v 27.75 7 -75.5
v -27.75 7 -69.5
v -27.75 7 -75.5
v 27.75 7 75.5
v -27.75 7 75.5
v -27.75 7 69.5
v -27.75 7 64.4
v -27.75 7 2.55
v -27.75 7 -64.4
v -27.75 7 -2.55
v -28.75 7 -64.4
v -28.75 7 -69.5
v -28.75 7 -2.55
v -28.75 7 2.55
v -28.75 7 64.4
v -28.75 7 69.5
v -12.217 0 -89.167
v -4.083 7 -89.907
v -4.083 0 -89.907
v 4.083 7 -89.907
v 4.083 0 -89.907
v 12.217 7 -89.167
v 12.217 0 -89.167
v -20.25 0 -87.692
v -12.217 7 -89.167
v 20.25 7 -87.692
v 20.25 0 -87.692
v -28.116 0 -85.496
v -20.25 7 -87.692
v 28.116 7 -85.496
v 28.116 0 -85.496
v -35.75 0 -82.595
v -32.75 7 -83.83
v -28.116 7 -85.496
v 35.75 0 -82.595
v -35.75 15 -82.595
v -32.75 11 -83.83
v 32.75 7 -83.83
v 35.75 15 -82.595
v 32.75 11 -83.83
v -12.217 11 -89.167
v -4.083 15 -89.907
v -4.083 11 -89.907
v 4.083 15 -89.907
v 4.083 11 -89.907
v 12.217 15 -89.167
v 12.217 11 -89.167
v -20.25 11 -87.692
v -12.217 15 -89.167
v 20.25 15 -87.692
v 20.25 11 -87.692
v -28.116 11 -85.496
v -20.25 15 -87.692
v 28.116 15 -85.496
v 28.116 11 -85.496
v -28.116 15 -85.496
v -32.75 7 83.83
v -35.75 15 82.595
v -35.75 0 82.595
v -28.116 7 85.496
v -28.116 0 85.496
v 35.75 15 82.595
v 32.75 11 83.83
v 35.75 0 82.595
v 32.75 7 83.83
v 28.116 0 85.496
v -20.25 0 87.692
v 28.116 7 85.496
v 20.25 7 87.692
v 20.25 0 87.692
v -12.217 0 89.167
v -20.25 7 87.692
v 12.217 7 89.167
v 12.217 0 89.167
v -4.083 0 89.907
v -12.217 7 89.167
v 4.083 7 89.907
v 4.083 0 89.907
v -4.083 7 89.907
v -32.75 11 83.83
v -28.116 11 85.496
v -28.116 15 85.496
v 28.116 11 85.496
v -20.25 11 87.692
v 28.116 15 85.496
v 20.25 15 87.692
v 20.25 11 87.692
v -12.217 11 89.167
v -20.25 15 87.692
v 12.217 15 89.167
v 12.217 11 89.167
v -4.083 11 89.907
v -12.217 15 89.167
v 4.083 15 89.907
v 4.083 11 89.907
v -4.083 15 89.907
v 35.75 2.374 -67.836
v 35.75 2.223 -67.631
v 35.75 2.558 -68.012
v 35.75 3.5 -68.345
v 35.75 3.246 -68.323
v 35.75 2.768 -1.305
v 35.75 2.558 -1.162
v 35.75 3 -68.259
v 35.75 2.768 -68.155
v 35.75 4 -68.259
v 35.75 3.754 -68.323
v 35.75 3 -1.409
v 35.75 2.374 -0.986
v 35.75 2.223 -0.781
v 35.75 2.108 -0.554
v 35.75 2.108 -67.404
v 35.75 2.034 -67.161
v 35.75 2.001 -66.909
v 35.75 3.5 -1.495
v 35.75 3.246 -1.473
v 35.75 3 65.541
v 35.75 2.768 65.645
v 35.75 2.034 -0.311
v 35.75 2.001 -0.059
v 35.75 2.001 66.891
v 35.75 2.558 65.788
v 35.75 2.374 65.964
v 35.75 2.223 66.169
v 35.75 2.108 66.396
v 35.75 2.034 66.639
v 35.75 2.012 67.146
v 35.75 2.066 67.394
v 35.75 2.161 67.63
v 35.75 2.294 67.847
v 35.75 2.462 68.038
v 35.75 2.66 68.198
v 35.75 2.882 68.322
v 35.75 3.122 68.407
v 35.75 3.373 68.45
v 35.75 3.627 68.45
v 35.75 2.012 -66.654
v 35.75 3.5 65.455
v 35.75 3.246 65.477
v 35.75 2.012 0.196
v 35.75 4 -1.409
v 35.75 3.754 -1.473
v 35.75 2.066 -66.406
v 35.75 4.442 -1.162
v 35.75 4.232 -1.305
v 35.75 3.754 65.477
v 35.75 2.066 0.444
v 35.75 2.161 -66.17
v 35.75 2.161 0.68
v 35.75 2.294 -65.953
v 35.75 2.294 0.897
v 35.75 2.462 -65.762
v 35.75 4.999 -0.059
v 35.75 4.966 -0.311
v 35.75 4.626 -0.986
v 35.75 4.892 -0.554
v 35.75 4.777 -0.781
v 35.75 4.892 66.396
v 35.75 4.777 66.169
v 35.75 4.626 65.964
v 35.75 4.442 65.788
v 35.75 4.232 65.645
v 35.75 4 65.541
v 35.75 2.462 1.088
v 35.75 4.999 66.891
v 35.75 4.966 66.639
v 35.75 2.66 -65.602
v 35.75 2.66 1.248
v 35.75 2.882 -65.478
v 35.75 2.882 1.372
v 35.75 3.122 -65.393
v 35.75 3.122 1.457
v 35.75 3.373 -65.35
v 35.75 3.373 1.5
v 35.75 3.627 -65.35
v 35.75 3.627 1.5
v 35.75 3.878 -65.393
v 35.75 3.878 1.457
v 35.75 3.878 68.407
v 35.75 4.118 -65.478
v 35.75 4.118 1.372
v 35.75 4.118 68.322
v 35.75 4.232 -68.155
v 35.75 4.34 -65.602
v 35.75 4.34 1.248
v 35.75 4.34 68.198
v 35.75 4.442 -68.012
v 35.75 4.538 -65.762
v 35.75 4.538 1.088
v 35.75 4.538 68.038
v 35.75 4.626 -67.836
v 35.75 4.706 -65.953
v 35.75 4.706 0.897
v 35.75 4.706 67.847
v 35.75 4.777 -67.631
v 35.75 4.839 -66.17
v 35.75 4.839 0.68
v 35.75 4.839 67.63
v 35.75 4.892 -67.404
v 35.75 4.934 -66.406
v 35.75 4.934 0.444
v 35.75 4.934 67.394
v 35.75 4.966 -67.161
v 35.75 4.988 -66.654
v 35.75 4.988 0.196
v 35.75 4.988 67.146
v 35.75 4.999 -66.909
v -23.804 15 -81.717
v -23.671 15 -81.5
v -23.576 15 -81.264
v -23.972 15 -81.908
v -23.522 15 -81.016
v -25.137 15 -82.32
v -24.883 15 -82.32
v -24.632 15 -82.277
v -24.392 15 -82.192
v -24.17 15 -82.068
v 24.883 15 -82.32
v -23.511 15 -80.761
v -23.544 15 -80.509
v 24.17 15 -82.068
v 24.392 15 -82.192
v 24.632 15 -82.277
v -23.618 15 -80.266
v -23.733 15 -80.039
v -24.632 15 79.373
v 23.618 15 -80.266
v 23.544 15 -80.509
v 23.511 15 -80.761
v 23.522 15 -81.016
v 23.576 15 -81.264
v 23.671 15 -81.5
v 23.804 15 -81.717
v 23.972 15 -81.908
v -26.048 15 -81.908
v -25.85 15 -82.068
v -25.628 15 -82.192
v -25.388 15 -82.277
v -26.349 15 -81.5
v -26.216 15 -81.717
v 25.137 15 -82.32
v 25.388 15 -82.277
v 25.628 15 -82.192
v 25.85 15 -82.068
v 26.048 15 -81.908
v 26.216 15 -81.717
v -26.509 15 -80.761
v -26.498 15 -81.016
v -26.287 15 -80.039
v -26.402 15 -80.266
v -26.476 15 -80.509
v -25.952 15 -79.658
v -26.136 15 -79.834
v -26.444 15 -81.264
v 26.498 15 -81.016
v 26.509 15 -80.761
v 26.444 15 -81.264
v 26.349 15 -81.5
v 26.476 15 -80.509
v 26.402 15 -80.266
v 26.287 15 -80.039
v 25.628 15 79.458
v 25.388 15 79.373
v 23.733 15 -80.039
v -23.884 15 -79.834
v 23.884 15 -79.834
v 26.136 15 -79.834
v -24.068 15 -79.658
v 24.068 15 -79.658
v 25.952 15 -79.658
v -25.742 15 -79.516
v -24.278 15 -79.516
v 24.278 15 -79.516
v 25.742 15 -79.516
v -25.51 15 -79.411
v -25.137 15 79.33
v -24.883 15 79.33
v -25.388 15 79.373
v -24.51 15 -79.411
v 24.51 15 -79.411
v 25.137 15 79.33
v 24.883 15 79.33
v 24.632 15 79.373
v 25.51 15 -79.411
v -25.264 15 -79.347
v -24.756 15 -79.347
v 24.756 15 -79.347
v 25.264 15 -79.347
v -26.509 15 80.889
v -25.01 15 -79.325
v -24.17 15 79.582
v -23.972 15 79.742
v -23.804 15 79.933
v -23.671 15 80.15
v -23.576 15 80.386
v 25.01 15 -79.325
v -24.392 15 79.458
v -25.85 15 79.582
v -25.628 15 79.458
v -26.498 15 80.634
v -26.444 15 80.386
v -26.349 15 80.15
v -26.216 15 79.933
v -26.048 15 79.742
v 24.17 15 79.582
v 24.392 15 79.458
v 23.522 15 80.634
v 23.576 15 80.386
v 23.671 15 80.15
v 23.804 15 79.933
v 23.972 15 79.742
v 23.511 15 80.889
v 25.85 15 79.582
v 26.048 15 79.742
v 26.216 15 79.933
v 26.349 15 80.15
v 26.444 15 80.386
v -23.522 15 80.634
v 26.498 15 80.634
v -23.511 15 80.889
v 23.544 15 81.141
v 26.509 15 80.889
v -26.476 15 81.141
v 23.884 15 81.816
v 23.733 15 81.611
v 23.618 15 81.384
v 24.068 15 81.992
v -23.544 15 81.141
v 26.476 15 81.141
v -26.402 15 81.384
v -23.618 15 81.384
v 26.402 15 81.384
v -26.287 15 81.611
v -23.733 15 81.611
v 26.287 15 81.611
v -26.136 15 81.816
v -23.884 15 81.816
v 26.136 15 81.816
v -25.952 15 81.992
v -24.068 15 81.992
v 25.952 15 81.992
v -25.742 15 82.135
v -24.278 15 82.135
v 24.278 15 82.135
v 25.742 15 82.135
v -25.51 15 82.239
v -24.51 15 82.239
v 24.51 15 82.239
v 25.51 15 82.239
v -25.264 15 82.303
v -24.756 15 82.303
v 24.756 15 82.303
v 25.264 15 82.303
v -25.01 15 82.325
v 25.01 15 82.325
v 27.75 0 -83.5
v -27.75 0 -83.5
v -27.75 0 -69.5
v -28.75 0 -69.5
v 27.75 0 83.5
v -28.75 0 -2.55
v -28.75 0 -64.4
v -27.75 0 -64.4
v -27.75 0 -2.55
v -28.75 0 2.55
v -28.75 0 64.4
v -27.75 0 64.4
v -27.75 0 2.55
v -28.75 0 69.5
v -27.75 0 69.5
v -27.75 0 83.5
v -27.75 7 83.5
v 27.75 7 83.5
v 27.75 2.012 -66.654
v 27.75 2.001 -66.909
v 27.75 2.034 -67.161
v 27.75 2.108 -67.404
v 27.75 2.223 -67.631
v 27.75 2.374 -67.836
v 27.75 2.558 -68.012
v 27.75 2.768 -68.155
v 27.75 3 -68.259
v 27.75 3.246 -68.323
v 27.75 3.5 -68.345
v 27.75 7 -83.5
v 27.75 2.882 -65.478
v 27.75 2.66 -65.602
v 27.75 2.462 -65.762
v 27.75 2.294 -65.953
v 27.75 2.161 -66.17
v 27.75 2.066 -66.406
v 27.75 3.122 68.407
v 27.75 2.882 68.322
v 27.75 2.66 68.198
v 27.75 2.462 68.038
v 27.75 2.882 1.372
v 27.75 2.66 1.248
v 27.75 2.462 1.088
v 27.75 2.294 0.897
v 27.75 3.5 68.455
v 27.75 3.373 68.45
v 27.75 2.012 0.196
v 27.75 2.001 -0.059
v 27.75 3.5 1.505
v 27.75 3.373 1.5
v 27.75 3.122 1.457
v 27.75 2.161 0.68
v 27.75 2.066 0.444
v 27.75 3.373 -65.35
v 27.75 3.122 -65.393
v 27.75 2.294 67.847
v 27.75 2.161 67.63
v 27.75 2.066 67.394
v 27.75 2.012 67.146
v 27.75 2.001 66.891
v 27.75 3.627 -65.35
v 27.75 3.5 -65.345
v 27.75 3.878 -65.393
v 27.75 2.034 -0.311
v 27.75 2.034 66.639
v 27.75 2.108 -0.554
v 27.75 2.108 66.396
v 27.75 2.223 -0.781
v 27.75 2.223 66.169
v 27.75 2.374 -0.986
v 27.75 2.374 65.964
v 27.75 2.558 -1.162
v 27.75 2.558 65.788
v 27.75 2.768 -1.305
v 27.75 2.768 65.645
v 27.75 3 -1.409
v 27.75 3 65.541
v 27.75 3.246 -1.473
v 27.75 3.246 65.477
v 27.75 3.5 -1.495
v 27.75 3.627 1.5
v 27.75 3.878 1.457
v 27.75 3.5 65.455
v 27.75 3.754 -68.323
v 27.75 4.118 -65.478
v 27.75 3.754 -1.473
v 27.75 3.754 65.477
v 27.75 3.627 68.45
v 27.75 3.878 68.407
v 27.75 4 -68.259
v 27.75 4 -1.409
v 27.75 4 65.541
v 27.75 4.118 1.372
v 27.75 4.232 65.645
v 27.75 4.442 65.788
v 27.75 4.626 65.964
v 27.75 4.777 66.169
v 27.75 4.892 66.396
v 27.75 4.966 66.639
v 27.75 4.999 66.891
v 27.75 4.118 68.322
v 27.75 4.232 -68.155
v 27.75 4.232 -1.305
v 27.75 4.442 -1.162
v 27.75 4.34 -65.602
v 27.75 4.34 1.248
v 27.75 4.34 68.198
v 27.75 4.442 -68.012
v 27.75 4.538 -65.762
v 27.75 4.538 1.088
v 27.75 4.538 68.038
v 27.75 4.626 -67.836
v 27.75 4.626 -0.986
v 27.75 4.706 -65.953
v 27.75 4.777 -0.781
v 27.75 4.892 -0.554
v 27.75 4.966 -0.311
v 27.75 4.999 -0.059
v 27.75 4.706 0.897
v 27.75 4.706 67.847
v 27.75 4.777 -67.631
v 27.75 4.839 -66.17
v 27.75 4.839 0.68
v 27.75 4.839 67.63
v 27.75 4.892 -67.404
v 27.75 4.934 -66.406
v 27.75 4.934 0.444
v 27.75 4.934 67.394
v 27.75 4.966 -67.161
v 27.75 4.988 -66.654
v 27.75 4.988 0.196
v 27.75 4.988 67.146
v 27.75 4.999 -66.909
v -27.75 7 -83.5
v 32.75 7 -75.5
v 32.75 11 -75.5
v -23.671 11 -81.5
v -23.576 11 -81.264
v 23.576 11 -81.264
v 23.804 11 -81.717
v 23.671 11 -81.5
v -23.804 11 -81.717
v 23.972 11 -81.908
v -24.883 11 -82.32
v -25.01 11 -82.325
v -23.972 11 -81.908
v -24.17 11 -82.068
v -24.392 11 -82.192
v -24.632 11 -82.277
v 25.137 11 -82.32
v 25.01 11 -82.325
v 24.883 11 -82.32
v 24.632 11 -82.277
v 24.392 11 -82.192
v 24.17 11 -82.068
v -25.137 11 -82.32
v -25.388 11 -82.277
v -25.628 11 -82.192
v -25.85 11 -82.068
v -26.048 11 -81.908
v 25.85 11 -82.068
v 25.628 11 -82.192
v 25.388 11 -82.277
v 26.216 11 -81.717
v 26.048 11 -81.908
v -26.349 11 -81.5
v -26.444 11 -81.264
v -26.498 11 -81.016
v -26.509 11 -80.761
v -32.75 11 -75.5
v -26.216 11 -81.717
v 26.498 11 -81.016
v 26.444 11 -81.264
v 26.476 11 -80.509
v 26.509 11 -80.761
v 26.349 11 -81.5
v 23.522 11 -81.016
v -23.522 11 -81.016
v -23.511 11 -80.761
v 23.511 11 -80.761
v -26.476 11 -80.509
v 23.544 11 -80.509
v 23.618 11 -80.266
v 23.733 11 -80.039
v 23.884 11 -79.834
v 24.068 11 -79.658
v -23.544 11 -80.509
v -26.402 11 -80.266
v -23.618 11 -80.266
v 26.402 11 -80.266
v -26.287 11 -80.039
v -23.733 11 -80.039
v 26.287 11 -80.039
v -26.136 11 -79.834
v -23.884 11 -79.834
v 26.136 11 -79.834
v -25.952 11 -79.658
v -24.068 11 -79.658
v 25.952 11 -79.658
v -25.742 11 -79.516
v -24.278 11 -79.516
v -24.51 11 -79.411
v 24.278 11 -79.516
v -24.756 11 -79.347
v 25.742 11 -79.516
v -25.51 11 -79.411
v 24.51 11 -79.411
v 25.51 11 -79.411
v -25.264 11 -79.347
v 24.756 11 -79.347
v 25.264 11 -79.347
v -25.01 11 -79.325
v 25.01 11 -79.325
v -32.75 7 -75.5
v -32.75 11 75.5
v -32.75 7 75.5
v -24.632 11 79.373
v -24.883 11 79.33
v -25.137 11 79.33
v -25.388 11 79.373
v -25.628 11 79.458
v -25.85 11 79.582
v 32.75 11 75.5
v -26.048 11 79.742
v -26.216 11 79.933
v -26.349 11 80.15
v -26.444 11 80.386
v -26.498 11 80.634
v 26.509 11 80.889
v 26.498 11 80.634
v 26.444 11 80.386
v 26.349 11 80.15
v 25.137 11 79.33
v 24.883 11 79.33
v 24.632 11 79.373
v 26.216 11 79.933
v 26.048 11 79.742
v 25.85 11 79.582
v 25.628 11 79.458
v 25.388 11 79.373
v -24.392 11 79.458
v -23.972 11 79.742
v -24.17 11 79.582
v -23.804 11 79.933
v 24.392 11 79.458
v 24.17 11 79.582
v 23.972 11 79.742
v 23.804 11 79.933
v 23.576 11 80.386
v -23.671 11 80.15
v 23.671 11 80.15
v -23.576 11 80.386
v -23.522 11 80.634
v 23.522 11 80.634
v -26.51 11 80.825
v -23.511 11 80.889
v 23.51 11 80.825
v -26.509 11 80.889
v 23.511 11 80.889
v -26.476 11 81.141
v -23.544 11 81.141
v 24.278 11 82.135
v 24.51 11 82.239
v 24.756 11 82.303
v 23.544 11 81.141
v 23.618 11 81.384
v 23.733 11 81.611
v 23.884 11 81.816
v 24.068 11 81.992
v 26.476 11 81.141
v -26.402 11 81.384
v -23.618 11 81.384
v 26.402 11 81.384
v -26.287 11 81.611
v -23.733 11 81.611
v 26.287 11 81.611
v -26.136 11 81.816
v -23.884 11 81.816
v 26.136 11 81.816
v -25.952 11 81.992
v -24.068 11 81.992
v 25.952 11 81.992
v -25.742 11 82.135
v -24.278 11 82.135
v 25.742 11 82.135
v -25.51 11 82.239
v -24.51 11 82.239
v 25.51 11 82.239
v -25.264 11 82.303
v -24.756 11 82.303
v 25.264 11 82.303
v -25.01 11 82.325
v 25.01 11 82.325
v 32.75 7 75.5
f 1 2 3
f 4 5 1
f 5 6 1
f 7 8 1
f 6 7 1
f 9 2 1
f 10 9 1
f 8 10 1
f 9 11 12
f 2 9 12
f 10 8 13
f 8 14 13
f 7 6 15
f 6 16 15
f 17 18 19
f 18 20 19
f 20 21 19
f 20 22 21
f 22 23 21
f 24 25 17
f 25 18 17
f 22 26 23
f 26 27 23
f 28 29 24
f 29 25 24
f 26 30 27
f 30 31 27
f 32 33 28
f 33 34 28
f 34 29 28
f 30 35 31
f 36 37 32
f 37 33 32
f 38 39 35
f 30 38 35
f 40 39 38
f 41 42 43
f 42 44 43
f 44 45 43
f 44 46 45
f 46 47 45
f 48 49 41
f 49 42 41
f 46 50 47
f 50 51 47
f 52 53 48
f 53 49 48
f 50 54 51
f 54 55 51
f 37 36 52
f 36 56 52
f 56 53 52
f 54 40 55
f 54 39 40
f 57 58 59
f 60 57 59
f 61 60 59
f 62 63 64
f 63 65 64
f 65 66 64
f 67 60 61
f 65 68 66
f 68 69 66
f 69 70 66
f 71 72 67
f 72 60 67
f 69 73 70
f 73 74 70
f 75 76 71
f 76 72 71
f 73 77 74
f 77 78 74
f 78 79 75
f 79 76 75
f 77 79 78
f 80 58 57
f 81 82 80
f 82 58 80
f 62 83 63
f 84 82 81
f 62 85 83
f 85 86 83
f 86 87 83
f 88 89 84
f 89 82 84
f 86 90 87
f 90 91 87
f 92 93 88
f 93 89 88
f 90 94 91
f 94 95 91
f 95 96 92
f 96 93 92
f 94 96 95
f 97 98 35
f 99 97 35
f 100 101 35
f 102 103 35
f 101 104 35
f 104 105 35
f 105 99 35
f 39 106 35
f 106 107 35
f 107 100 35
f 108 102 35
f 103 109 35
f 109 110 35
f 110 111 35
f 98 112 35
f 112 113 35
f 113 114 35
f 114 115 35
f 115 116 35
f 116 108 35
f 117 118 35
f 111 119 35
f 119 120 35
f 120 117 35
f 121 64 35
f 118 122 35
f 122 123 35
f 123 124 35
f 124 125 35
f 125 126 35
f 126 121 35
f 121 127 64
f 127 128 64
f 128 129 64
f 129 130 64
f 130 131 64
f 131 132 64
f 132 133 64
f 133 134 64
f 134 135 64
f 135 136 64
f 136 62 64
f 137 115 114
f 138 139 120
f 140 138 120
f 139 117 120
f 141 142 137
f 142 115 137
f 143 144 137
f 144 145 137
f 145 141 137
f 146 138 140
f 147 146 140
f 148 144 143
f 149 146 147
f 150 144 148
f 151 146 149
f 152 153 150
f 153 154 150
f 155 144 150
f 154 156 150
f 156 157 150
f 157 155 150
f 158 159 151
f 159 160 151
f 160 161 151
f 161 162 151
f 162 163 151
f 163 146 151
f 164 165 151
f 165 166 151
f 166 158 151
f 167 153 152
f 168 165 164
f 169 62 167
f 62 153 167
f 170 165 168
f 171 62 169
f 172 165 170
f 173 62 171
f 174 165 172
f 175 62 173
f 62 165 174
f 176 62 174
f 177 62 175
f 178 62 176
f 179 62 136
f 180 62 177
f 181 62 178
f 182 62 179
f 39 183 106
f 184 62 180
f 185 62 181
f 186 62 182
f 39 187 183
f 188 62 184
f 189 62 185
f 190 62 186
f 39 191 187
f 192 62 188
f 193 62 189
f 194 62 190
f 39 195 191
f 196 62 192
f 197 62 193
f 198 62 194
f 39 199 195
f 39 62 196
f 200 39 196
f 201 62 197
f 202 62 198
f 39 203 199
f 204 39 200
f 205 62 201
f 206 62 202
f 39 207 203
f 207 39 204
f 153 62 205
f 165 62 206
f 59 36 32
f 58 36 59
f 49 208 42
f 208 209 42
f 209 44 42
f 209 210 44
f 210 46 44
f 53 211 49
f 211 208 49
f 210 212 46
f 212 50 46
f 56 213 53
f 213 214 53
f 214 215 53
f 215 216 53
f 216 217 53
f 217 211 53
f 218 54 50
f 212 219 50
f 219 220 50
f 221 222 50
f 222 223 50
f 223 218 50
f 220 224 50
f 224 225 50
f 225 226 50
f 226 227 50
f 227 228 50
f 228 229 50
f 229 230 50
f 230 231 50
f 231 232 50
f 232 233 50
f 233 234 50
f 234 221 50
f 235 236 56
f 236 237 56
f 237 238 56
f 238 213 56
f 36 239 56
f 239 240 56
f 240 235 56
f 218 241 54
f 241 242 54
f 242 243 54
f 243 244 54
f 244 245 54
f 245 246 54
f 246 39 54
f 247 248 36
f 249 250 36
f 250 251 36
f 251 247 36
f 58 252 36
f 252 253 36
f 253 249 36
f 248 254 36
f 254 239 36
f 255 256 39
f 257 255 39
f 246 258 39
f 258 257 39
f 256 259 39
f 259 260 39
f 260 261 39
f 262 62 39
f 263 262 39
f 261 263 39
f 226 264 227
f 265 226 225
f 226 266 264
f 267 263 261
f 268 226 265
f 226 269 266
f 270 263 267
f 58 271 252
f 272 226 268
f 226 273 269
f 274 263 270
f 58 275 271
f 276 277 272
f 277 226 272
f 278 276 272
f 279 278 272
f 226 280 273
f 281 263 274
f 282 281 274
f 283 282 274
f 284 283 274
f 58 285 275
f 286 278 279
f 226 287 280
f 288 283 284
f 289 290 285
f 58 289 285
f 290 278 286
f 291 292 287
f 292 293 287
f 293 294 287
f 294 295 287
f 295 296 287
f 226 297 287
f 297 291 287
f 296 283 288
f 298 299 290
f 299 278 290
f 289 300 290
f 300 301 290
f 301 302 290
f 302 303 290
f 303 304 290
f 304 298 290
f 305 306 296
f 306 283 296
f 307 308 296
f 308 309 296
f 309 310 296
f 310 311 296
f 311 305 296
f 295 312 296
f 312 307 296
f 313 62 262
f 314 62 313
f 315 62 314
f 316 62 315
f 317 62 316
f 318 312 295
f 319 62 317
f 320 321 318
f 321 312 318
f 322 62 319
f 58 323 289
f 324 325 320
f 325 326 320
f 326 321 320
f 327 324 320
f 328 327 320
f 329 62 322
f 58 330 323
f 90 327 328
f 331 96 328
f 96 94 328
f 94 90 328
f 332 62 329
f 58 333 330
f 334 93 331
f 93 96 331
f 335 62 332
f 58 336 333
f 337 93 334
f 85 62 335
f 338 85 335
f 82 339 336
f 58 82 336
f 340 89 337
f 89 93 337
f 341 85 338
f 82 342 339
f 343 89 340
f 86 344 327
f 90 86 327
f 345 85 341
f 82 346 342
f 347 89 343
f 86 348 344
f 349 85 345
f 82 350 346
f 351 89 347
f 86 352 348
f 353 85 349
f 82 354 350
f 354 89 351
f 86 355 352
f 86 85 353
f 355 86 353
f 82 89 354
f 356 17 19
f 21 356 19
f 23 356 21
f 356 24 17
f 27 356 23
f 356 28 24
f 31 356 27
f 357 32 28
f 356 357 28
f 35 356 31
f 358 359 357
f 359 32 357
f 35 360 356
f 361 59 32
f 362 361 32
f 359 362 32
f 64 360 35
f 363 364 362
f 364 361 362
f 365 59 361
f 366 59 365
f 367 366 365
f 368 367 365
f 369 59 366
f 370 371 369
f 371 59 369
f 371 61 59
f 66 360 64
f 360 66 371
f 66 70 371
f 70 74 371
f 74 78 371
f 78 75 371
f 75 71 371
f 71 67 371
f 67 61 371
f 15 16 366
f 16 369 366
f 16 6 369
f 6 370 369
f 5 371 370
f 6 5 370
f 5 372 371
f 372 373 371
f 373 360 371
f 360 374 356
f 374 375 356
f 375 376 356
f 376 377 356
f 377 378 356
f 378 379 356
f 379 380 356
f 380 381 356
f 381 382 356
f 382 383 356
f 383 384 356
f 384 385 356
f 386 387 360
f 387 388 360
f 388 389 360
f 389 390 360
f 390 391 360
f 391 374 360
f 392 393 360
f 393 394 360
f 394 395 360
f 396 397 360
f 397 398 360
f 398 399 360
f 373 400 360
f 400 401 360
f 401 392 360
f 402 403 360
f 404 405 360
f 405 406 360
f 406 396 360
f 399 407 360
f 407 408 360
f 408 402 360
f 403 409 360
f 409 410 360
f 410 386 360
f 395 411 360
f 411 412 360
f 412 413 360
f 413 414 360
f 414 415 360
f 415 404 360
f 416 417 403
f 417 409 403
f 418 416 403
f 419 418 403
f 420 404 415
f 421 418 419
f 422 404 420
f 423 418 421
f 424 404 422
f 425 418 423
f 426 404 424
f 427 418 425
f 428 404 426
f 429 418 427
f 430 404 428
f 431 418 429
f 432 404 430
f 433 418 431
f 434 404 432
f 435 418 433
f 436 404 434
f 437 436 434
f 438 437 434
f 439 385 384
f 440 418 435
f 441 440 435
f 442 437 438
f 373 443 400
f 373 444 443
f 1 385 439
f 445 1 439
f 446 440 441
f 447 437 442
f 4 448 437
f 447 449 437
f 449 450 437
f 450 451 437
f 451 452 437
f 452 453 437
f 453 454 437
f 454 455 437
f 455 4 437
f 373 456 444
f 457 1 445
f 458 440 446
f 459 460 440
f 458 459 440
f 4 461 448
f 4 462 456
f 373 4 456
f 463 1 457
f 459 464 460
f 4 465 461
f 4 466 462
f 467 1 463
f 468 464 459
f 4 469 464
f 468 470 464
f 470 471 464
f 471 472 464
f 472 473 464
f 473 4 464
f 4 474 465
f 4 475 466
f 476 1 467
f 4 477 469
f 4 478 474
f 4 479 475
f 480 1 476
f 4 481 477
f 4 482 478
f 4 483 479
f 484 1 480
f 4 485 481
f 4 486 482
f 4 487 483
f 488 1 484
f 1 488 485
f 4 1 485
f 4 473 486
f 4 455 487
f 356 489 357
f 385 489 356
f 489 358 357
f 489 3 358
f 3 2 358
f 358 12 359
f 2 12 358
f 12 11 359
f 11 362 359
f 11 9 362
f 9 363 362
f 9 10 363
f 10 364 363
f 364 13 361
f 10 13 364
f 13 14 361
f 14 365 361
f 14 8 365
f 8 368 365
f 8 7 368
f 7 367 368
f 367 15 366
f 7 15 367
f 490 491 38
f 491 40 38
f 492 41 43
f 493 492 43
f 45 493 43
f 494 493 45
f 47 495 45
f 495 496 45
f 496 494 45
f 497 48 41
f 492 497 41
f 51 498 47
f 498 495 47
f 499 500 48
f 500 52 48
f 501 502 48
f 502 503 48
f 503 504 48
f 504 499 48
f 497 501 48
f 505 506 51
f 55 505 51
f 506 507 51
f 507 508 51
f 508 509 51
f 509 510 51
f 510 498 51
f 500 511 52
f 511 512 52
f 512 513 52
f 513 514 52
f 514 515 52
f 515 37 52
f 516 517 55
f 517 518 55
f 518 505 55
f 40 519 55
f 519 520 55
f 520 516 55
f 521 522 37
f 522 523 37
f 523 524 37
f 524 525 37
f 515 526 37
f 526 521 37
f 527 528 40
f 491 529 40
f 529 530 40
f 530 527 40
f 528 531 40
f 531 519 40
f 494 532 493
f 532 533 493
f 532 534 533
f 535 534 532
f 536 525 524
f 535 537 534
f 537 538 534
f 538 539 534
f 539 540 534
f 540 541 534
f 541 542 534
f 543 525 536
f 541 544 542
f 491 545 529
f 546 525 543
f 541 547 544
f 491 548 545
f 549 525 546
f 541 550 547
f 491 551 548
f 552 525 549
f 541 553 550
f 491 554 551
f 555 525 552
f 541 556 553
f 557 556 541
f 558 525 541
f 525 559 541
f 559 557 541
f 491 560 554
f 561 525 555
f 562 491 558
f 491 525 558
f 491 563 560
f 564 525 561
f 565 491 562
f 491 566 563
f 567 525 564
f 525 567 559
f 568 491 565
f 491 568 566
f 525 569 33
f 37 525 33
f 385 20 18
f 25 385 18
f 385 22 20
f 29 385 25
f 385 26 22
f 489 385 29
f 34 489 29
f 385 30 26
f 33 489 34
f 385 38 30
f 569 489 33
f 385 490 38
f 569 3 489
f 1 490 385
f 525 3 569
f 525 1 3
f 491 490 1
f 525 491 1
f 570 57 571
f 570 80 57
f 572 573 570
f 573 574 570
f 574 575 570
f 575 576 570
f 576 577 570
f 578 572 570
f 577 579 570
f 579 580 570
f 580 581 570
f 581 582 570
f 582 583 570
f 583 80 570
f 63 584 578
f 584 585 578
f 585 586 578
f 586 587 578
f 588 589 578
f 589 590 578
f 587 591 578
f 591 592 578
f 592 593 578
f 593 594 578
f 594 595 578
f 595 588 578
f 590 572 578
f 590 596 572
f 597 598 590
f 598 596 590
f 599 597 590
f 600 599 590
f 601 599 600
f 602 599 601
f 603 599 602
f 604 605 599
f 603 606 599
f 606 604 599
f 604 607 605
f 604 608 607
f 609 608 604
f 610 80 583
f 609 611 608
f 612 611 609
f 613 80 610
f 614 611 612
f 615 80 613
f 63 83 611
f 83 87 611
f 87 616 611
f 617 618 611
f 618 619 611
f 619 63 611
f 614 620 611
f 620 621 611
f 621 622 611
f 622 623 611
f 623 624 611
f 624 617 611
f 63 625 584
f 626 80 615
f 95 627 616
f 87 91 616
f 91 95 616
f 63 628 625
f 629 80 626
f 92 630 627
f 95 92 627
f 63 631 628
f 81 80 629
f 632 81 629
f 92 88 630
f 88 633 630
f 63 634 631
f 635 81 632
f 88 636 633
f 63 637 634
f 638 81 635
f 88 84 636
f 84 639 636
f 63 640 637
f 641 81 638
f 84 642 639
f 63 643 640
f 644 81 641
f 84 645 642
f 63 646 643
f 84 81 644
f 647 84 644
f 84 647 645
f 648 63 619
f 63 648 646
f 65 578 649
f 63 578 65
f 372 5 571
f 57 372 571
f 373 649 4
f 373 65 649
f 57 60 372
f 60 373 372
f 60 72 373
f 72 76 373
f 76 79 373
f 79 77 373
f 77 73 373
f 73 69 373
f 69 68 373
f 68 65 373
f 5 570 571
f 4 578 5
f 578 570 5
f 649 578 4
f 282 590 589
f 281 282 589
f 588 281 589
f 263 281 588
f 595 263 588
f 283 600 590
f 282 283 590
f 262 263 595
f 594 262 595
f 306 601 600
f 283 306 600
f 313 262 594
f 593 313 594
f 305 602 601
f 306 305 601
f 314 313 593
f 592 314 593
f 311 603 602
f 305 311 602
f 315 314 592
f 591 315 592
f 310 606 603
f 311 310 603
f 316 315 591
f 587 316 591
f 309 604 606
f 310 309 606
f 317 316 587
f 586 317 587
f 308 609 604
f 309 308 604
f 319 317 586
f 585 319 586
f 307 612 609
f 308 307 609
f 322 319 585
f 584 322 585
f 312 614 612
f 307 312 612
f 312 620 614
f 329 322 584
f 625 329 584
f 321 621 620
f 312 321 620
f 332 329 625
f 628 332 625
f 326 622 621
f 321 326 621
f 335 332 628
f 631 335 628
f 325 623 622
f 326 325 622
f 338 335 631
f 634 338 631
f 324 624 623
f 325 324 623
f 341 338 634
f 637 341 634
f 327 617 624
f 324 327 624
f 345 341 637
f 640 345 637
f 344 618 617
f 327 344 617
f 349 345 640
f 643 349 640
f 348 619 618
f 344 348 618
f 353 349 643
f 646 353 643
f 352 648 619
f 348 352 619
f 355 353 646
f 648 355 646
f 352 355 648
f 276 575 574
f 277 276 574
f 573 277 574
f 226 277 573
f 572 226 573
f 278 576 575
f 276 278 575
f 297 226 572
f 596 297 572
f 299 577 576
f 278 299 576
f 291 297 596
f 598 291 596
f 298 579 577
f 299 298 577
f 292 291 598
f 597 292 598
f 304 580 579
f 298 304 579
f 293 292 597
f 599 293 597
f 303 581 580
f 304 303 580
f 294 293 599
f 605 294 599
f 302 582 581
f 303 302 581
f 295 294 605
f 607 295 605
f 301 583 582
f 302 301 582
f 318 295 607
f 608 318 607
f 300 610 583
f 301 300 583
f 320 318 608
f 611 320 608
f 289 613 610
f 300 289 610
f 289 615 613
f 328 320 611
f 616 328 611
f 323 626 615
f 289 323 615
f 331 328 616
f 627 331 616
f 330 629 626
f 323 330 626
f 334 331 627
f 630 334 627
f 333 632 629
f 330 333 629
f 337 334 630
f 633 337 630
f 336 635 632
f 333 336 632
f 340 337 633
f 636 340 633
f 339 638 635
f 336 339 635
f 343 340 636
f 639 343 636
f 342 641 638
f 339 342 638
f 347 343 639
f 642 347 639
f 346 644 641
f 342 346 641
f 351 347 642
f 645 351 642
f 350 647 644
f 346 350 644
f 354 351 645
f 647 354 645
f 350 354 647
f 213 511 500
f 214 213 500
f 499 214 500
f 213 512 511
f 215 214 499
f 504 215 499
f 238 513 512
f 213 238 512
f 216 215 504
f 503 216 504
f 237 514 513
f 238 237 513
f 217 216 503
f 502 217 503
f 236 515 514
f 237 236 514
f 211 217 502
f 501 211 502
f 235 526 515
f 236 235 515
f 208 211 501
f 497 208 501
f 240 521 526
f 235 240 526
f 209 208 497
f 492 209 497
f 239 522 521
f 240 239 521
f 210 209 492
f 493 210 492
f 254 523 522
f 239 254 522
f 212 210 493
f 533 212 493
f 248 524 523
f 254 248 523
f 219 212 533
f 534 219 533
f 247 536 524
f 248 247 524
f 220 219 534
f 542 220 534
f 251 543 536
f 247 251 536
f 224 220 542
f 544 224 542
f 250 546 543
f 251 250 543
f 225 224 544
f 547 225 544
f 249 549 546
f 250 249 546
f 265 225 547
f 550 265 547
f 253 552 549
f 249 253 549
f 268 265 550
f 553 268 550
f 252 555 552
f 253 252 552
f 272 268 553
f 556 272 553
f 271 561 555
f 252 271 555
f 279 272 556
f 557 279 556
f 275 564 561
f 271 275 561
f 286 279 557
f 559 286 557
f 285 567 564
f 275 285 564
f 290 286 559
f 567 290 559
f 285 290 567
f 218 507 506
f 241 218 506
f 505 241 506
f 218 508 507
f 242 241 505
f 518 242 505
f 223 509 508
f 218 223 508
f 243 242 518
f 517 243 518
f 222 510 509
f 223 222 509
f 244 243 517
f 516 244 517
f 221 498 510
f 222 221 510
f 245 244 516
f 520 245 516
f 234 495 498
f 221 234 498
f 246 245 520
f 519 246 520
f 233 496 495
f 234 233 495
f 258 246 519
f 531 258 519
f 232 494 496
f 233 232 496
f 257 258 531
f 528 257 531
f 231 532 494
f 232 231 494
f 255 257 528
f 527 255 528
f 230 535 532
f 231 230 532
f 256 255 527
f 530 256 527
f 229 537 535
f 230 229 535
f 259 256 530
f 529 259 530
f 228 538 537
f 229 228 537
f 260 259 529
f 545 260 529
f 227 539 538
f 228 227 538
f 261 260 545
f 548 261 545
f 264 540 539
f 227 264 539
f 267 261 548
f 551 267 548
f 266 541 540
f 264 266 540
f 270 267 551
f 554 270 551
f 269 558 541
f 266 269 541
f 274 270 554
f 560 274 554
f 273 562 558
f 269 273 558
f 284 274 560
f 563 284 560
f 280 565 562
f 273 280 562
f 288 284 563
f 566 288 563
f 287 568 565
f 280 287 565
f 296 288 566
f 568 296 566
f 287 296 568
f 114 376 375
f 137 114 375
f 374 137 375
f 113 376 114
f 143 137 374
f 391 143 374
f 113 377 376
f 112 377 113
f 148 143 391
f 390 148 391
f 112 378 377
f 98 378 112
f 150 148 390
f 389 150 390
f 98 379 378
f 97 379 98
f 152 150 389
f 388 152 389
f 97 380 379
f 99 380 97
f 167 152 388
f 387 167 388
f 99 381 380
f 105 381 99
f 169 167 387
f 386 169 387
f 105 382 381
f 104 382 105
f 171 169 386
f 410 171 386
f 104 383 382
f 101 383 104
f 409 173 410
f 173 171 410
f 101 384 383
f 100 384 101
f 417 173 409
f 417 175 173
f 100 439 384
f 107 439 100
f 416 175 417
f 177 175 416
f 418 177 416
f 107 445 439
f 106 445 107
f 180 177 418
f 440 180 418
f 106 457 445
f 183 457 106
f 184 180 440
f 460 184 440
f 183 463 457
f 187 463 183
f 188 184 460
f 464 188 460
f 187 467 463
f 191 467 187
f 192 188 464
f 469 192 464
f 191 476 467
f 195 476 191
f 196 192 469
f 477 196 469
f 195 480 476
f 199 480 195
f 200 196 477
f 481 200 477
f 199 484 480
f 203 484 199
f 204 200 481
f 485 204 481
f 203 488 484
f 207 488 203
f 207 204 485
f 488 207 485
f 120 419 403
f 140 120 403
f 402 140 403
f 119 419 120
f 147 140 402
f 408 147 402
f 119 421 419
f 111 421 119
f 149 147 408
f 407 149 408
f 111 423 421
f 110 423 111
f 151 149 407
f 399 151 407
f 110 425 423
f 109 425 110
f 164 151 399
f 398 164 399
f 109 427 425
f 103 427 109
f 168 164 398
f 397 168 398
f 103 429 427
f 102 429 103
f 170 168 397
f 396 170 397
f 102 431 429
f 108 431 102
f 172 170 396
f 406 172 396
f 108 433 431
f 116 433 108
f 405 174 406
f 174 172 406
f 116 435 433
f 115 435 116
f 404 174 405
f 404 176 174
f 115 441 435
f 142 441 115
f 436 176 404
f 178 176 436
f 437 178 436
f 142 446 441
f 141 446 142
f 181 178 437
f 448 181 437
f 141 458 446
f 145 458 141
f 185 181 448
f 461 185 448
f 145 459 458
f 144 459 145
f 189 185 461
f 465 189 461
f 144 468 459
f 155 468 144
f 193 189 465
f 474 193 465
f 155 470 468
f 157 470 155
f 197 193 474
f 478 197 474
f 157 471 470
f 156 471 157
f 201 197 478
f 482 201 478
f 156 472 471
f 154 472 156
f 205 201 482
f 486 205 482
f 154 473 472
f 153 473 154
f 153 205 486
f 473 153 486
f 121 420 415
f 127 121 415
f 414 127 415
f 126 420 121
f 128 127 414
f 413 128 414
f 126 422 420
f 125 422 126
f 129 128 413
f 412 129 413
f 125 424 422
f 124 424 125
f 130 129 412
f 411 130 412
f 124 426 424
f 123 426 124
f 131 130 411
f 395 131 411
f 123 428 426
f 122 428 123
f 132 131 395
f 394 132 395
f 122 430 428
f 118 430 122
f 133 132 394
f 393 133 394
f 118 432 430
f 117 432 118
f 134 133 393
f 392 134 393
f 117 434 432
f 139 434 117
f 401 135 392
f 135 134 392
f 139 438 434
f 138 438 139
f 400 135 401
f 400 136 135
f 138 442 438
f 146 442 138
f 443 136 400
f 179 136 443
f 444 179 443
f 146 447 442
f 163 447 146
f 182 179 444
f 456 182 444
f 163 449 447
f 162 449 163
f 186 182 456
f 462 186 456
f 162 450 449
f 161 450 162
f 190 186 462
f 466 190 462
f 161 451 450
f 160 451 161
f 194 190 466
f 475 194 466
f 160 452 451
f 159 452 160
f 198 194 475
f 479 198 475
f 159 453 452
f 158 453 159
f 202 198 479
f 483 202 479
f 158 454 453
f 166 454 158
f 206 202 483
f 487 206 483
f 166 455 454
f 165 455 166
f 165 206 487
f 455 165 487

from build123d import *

# Parameters (mm, degrees)
RESSALTO_EXTRUS_O1_DEPTH = 15
CORTE_EXTRUS_O1_DEPTH    = 7
ESBO_O4_W                = 65.5
ESBO_O4_H                = 4
CORTE_EXTRUS_O3_DEPTH    = 14.5
ESBO_O5_W                = 65.5
ESBO_O5_H                = 4
CORTE_EXTRUS_O4_DEPTH    = 14.5
ESBO_O6_R                = 1.5
CORTE_EXTRUS_O5_DEPTH    = 98.99521672
ESBO_O7_R                = 1.5
CORTE_EXTRUS_O6_DEPTH    = 14.5


with BuildPart() as part:
    # Esboço2 → Ressalto-extrusão1 (new body)
    with BuildSketch(Plane(origin=(0, 0, 0), x_dir=(1, 0, 0), z_dir=(0, 1, 0))):
        with BuildLine():
            Line((-35.75, -82.595021036), (-35.75, 82.595021036))
            ThreePointArc((-35.75, 82.595021036), (0, 90), (35.75, 82.595021036))
            Line((35.75, 82.595021036), (35.75, -82.595021036))
            ThreePointArc((35.75, -82.595021036), (0, -90), (-35.75, -82.595021036))
        make_face()
    extrude(amount=RESSALTO_EXTRUS_O1_DEPTH)

    # Esboço3 → Corte-extrusão1 (cut)
    with BuildSketch(Plane(origin=(0, 0, 0), x_dir=(-1, 0, 0), z_dir=(0, -1, 0))):
        Polygon((27.75, 69.5), (27.75, 83.5), (-27.75, 83.5), (-27.75, -83.5), (27.75, -83.5), (27.75, -69.5), (28.75, -69.5), (28.75, -64.4), (27.75, -64.4), (27.75, -2.55), (28.75, -2.55), (28.75, 2.55), (27.75, 2.55), (27.75, 64.4), (28.75, 64.4), (28.75, 69.5), align=None)
    extrude(amount=-CORTE_EXTRUS_O1_DEPTH, mode=Mode.SUBTRACT)

    # Esboço4 → Corte-extrusão3 (cut)
    with BuildSketch(Plane(origin=(0, 0, -90), x_dir=(-1, 0, 0), z_dir=(0, 0, -1))):
        with Locations((0, 9)):
            Rectangle(ESBO_O4_W, ESBO_O4_H)
    extrude(amount=-CORTE_EXTRUS_O3_DEPTH, mode=Mode.SUBTRACT)

    # Esboço5 → Corte-extrusão4 (cut)
    with BuildSketch(Plane.XY.offset(90)):
        with Locations((0, 9)):
            Rectangle(ESBO_O5_W, ESBO_O5_H)
    extrude(amount=-CORTE_EXTRUS_O4_DEPTH, mode=Mode.SUBTRACT)

    # Esboço6 → Corte-extrusão5 (cut, through all)
    with BuildSketch(Plane(origin=(0, 15, 0), x_dir=(1, 0, 0), z_dir=(0, 1, 0))):
        with Locations(Location((-25.01, 80.825021036, 0), (0, 0, 270))):
            Circle(ESBO_O6_R)
        with Locations(Location((25.01, 80.825021036, 0), (0, 0, 270))):
            Circle(ESBO_O6_R)
        with Locations(Location((-25.01, -80.825021036, 0), (0, 0, 270))):
            Circle(ESBO_O6_R)
        with Locations(Location((25.01, -80.825021036, 0), (0, 0, 270))):
            Circle(ESBO_O6_R)
    extrude(amount=-CORTE_EXTRUS_O5_DEPTH, mode=Mode.SUBTRACT)

    # Esboço7 → Corte-extrusão6 (cut)
    with BuildSketch(Plane(origin=(35.75, 0, 0), x_dir=(0, 0, -1), z_dir=(1, 0, 0))):
        with Locations((-66.954978964, 3.5)):
            Circle(ESBO_O7_R)
        with Locations((-0.004978964, 3.5)):
            Circle(ESBO_O7_R)
        with Locations((66.845021036, 3.5)):
            Circle(ESBO_O7_R)
    extrude(amount=-CORTE_EXTRUS_O6_DEPTH, mode=Mode.SUBTRACT)


solid = part.part
